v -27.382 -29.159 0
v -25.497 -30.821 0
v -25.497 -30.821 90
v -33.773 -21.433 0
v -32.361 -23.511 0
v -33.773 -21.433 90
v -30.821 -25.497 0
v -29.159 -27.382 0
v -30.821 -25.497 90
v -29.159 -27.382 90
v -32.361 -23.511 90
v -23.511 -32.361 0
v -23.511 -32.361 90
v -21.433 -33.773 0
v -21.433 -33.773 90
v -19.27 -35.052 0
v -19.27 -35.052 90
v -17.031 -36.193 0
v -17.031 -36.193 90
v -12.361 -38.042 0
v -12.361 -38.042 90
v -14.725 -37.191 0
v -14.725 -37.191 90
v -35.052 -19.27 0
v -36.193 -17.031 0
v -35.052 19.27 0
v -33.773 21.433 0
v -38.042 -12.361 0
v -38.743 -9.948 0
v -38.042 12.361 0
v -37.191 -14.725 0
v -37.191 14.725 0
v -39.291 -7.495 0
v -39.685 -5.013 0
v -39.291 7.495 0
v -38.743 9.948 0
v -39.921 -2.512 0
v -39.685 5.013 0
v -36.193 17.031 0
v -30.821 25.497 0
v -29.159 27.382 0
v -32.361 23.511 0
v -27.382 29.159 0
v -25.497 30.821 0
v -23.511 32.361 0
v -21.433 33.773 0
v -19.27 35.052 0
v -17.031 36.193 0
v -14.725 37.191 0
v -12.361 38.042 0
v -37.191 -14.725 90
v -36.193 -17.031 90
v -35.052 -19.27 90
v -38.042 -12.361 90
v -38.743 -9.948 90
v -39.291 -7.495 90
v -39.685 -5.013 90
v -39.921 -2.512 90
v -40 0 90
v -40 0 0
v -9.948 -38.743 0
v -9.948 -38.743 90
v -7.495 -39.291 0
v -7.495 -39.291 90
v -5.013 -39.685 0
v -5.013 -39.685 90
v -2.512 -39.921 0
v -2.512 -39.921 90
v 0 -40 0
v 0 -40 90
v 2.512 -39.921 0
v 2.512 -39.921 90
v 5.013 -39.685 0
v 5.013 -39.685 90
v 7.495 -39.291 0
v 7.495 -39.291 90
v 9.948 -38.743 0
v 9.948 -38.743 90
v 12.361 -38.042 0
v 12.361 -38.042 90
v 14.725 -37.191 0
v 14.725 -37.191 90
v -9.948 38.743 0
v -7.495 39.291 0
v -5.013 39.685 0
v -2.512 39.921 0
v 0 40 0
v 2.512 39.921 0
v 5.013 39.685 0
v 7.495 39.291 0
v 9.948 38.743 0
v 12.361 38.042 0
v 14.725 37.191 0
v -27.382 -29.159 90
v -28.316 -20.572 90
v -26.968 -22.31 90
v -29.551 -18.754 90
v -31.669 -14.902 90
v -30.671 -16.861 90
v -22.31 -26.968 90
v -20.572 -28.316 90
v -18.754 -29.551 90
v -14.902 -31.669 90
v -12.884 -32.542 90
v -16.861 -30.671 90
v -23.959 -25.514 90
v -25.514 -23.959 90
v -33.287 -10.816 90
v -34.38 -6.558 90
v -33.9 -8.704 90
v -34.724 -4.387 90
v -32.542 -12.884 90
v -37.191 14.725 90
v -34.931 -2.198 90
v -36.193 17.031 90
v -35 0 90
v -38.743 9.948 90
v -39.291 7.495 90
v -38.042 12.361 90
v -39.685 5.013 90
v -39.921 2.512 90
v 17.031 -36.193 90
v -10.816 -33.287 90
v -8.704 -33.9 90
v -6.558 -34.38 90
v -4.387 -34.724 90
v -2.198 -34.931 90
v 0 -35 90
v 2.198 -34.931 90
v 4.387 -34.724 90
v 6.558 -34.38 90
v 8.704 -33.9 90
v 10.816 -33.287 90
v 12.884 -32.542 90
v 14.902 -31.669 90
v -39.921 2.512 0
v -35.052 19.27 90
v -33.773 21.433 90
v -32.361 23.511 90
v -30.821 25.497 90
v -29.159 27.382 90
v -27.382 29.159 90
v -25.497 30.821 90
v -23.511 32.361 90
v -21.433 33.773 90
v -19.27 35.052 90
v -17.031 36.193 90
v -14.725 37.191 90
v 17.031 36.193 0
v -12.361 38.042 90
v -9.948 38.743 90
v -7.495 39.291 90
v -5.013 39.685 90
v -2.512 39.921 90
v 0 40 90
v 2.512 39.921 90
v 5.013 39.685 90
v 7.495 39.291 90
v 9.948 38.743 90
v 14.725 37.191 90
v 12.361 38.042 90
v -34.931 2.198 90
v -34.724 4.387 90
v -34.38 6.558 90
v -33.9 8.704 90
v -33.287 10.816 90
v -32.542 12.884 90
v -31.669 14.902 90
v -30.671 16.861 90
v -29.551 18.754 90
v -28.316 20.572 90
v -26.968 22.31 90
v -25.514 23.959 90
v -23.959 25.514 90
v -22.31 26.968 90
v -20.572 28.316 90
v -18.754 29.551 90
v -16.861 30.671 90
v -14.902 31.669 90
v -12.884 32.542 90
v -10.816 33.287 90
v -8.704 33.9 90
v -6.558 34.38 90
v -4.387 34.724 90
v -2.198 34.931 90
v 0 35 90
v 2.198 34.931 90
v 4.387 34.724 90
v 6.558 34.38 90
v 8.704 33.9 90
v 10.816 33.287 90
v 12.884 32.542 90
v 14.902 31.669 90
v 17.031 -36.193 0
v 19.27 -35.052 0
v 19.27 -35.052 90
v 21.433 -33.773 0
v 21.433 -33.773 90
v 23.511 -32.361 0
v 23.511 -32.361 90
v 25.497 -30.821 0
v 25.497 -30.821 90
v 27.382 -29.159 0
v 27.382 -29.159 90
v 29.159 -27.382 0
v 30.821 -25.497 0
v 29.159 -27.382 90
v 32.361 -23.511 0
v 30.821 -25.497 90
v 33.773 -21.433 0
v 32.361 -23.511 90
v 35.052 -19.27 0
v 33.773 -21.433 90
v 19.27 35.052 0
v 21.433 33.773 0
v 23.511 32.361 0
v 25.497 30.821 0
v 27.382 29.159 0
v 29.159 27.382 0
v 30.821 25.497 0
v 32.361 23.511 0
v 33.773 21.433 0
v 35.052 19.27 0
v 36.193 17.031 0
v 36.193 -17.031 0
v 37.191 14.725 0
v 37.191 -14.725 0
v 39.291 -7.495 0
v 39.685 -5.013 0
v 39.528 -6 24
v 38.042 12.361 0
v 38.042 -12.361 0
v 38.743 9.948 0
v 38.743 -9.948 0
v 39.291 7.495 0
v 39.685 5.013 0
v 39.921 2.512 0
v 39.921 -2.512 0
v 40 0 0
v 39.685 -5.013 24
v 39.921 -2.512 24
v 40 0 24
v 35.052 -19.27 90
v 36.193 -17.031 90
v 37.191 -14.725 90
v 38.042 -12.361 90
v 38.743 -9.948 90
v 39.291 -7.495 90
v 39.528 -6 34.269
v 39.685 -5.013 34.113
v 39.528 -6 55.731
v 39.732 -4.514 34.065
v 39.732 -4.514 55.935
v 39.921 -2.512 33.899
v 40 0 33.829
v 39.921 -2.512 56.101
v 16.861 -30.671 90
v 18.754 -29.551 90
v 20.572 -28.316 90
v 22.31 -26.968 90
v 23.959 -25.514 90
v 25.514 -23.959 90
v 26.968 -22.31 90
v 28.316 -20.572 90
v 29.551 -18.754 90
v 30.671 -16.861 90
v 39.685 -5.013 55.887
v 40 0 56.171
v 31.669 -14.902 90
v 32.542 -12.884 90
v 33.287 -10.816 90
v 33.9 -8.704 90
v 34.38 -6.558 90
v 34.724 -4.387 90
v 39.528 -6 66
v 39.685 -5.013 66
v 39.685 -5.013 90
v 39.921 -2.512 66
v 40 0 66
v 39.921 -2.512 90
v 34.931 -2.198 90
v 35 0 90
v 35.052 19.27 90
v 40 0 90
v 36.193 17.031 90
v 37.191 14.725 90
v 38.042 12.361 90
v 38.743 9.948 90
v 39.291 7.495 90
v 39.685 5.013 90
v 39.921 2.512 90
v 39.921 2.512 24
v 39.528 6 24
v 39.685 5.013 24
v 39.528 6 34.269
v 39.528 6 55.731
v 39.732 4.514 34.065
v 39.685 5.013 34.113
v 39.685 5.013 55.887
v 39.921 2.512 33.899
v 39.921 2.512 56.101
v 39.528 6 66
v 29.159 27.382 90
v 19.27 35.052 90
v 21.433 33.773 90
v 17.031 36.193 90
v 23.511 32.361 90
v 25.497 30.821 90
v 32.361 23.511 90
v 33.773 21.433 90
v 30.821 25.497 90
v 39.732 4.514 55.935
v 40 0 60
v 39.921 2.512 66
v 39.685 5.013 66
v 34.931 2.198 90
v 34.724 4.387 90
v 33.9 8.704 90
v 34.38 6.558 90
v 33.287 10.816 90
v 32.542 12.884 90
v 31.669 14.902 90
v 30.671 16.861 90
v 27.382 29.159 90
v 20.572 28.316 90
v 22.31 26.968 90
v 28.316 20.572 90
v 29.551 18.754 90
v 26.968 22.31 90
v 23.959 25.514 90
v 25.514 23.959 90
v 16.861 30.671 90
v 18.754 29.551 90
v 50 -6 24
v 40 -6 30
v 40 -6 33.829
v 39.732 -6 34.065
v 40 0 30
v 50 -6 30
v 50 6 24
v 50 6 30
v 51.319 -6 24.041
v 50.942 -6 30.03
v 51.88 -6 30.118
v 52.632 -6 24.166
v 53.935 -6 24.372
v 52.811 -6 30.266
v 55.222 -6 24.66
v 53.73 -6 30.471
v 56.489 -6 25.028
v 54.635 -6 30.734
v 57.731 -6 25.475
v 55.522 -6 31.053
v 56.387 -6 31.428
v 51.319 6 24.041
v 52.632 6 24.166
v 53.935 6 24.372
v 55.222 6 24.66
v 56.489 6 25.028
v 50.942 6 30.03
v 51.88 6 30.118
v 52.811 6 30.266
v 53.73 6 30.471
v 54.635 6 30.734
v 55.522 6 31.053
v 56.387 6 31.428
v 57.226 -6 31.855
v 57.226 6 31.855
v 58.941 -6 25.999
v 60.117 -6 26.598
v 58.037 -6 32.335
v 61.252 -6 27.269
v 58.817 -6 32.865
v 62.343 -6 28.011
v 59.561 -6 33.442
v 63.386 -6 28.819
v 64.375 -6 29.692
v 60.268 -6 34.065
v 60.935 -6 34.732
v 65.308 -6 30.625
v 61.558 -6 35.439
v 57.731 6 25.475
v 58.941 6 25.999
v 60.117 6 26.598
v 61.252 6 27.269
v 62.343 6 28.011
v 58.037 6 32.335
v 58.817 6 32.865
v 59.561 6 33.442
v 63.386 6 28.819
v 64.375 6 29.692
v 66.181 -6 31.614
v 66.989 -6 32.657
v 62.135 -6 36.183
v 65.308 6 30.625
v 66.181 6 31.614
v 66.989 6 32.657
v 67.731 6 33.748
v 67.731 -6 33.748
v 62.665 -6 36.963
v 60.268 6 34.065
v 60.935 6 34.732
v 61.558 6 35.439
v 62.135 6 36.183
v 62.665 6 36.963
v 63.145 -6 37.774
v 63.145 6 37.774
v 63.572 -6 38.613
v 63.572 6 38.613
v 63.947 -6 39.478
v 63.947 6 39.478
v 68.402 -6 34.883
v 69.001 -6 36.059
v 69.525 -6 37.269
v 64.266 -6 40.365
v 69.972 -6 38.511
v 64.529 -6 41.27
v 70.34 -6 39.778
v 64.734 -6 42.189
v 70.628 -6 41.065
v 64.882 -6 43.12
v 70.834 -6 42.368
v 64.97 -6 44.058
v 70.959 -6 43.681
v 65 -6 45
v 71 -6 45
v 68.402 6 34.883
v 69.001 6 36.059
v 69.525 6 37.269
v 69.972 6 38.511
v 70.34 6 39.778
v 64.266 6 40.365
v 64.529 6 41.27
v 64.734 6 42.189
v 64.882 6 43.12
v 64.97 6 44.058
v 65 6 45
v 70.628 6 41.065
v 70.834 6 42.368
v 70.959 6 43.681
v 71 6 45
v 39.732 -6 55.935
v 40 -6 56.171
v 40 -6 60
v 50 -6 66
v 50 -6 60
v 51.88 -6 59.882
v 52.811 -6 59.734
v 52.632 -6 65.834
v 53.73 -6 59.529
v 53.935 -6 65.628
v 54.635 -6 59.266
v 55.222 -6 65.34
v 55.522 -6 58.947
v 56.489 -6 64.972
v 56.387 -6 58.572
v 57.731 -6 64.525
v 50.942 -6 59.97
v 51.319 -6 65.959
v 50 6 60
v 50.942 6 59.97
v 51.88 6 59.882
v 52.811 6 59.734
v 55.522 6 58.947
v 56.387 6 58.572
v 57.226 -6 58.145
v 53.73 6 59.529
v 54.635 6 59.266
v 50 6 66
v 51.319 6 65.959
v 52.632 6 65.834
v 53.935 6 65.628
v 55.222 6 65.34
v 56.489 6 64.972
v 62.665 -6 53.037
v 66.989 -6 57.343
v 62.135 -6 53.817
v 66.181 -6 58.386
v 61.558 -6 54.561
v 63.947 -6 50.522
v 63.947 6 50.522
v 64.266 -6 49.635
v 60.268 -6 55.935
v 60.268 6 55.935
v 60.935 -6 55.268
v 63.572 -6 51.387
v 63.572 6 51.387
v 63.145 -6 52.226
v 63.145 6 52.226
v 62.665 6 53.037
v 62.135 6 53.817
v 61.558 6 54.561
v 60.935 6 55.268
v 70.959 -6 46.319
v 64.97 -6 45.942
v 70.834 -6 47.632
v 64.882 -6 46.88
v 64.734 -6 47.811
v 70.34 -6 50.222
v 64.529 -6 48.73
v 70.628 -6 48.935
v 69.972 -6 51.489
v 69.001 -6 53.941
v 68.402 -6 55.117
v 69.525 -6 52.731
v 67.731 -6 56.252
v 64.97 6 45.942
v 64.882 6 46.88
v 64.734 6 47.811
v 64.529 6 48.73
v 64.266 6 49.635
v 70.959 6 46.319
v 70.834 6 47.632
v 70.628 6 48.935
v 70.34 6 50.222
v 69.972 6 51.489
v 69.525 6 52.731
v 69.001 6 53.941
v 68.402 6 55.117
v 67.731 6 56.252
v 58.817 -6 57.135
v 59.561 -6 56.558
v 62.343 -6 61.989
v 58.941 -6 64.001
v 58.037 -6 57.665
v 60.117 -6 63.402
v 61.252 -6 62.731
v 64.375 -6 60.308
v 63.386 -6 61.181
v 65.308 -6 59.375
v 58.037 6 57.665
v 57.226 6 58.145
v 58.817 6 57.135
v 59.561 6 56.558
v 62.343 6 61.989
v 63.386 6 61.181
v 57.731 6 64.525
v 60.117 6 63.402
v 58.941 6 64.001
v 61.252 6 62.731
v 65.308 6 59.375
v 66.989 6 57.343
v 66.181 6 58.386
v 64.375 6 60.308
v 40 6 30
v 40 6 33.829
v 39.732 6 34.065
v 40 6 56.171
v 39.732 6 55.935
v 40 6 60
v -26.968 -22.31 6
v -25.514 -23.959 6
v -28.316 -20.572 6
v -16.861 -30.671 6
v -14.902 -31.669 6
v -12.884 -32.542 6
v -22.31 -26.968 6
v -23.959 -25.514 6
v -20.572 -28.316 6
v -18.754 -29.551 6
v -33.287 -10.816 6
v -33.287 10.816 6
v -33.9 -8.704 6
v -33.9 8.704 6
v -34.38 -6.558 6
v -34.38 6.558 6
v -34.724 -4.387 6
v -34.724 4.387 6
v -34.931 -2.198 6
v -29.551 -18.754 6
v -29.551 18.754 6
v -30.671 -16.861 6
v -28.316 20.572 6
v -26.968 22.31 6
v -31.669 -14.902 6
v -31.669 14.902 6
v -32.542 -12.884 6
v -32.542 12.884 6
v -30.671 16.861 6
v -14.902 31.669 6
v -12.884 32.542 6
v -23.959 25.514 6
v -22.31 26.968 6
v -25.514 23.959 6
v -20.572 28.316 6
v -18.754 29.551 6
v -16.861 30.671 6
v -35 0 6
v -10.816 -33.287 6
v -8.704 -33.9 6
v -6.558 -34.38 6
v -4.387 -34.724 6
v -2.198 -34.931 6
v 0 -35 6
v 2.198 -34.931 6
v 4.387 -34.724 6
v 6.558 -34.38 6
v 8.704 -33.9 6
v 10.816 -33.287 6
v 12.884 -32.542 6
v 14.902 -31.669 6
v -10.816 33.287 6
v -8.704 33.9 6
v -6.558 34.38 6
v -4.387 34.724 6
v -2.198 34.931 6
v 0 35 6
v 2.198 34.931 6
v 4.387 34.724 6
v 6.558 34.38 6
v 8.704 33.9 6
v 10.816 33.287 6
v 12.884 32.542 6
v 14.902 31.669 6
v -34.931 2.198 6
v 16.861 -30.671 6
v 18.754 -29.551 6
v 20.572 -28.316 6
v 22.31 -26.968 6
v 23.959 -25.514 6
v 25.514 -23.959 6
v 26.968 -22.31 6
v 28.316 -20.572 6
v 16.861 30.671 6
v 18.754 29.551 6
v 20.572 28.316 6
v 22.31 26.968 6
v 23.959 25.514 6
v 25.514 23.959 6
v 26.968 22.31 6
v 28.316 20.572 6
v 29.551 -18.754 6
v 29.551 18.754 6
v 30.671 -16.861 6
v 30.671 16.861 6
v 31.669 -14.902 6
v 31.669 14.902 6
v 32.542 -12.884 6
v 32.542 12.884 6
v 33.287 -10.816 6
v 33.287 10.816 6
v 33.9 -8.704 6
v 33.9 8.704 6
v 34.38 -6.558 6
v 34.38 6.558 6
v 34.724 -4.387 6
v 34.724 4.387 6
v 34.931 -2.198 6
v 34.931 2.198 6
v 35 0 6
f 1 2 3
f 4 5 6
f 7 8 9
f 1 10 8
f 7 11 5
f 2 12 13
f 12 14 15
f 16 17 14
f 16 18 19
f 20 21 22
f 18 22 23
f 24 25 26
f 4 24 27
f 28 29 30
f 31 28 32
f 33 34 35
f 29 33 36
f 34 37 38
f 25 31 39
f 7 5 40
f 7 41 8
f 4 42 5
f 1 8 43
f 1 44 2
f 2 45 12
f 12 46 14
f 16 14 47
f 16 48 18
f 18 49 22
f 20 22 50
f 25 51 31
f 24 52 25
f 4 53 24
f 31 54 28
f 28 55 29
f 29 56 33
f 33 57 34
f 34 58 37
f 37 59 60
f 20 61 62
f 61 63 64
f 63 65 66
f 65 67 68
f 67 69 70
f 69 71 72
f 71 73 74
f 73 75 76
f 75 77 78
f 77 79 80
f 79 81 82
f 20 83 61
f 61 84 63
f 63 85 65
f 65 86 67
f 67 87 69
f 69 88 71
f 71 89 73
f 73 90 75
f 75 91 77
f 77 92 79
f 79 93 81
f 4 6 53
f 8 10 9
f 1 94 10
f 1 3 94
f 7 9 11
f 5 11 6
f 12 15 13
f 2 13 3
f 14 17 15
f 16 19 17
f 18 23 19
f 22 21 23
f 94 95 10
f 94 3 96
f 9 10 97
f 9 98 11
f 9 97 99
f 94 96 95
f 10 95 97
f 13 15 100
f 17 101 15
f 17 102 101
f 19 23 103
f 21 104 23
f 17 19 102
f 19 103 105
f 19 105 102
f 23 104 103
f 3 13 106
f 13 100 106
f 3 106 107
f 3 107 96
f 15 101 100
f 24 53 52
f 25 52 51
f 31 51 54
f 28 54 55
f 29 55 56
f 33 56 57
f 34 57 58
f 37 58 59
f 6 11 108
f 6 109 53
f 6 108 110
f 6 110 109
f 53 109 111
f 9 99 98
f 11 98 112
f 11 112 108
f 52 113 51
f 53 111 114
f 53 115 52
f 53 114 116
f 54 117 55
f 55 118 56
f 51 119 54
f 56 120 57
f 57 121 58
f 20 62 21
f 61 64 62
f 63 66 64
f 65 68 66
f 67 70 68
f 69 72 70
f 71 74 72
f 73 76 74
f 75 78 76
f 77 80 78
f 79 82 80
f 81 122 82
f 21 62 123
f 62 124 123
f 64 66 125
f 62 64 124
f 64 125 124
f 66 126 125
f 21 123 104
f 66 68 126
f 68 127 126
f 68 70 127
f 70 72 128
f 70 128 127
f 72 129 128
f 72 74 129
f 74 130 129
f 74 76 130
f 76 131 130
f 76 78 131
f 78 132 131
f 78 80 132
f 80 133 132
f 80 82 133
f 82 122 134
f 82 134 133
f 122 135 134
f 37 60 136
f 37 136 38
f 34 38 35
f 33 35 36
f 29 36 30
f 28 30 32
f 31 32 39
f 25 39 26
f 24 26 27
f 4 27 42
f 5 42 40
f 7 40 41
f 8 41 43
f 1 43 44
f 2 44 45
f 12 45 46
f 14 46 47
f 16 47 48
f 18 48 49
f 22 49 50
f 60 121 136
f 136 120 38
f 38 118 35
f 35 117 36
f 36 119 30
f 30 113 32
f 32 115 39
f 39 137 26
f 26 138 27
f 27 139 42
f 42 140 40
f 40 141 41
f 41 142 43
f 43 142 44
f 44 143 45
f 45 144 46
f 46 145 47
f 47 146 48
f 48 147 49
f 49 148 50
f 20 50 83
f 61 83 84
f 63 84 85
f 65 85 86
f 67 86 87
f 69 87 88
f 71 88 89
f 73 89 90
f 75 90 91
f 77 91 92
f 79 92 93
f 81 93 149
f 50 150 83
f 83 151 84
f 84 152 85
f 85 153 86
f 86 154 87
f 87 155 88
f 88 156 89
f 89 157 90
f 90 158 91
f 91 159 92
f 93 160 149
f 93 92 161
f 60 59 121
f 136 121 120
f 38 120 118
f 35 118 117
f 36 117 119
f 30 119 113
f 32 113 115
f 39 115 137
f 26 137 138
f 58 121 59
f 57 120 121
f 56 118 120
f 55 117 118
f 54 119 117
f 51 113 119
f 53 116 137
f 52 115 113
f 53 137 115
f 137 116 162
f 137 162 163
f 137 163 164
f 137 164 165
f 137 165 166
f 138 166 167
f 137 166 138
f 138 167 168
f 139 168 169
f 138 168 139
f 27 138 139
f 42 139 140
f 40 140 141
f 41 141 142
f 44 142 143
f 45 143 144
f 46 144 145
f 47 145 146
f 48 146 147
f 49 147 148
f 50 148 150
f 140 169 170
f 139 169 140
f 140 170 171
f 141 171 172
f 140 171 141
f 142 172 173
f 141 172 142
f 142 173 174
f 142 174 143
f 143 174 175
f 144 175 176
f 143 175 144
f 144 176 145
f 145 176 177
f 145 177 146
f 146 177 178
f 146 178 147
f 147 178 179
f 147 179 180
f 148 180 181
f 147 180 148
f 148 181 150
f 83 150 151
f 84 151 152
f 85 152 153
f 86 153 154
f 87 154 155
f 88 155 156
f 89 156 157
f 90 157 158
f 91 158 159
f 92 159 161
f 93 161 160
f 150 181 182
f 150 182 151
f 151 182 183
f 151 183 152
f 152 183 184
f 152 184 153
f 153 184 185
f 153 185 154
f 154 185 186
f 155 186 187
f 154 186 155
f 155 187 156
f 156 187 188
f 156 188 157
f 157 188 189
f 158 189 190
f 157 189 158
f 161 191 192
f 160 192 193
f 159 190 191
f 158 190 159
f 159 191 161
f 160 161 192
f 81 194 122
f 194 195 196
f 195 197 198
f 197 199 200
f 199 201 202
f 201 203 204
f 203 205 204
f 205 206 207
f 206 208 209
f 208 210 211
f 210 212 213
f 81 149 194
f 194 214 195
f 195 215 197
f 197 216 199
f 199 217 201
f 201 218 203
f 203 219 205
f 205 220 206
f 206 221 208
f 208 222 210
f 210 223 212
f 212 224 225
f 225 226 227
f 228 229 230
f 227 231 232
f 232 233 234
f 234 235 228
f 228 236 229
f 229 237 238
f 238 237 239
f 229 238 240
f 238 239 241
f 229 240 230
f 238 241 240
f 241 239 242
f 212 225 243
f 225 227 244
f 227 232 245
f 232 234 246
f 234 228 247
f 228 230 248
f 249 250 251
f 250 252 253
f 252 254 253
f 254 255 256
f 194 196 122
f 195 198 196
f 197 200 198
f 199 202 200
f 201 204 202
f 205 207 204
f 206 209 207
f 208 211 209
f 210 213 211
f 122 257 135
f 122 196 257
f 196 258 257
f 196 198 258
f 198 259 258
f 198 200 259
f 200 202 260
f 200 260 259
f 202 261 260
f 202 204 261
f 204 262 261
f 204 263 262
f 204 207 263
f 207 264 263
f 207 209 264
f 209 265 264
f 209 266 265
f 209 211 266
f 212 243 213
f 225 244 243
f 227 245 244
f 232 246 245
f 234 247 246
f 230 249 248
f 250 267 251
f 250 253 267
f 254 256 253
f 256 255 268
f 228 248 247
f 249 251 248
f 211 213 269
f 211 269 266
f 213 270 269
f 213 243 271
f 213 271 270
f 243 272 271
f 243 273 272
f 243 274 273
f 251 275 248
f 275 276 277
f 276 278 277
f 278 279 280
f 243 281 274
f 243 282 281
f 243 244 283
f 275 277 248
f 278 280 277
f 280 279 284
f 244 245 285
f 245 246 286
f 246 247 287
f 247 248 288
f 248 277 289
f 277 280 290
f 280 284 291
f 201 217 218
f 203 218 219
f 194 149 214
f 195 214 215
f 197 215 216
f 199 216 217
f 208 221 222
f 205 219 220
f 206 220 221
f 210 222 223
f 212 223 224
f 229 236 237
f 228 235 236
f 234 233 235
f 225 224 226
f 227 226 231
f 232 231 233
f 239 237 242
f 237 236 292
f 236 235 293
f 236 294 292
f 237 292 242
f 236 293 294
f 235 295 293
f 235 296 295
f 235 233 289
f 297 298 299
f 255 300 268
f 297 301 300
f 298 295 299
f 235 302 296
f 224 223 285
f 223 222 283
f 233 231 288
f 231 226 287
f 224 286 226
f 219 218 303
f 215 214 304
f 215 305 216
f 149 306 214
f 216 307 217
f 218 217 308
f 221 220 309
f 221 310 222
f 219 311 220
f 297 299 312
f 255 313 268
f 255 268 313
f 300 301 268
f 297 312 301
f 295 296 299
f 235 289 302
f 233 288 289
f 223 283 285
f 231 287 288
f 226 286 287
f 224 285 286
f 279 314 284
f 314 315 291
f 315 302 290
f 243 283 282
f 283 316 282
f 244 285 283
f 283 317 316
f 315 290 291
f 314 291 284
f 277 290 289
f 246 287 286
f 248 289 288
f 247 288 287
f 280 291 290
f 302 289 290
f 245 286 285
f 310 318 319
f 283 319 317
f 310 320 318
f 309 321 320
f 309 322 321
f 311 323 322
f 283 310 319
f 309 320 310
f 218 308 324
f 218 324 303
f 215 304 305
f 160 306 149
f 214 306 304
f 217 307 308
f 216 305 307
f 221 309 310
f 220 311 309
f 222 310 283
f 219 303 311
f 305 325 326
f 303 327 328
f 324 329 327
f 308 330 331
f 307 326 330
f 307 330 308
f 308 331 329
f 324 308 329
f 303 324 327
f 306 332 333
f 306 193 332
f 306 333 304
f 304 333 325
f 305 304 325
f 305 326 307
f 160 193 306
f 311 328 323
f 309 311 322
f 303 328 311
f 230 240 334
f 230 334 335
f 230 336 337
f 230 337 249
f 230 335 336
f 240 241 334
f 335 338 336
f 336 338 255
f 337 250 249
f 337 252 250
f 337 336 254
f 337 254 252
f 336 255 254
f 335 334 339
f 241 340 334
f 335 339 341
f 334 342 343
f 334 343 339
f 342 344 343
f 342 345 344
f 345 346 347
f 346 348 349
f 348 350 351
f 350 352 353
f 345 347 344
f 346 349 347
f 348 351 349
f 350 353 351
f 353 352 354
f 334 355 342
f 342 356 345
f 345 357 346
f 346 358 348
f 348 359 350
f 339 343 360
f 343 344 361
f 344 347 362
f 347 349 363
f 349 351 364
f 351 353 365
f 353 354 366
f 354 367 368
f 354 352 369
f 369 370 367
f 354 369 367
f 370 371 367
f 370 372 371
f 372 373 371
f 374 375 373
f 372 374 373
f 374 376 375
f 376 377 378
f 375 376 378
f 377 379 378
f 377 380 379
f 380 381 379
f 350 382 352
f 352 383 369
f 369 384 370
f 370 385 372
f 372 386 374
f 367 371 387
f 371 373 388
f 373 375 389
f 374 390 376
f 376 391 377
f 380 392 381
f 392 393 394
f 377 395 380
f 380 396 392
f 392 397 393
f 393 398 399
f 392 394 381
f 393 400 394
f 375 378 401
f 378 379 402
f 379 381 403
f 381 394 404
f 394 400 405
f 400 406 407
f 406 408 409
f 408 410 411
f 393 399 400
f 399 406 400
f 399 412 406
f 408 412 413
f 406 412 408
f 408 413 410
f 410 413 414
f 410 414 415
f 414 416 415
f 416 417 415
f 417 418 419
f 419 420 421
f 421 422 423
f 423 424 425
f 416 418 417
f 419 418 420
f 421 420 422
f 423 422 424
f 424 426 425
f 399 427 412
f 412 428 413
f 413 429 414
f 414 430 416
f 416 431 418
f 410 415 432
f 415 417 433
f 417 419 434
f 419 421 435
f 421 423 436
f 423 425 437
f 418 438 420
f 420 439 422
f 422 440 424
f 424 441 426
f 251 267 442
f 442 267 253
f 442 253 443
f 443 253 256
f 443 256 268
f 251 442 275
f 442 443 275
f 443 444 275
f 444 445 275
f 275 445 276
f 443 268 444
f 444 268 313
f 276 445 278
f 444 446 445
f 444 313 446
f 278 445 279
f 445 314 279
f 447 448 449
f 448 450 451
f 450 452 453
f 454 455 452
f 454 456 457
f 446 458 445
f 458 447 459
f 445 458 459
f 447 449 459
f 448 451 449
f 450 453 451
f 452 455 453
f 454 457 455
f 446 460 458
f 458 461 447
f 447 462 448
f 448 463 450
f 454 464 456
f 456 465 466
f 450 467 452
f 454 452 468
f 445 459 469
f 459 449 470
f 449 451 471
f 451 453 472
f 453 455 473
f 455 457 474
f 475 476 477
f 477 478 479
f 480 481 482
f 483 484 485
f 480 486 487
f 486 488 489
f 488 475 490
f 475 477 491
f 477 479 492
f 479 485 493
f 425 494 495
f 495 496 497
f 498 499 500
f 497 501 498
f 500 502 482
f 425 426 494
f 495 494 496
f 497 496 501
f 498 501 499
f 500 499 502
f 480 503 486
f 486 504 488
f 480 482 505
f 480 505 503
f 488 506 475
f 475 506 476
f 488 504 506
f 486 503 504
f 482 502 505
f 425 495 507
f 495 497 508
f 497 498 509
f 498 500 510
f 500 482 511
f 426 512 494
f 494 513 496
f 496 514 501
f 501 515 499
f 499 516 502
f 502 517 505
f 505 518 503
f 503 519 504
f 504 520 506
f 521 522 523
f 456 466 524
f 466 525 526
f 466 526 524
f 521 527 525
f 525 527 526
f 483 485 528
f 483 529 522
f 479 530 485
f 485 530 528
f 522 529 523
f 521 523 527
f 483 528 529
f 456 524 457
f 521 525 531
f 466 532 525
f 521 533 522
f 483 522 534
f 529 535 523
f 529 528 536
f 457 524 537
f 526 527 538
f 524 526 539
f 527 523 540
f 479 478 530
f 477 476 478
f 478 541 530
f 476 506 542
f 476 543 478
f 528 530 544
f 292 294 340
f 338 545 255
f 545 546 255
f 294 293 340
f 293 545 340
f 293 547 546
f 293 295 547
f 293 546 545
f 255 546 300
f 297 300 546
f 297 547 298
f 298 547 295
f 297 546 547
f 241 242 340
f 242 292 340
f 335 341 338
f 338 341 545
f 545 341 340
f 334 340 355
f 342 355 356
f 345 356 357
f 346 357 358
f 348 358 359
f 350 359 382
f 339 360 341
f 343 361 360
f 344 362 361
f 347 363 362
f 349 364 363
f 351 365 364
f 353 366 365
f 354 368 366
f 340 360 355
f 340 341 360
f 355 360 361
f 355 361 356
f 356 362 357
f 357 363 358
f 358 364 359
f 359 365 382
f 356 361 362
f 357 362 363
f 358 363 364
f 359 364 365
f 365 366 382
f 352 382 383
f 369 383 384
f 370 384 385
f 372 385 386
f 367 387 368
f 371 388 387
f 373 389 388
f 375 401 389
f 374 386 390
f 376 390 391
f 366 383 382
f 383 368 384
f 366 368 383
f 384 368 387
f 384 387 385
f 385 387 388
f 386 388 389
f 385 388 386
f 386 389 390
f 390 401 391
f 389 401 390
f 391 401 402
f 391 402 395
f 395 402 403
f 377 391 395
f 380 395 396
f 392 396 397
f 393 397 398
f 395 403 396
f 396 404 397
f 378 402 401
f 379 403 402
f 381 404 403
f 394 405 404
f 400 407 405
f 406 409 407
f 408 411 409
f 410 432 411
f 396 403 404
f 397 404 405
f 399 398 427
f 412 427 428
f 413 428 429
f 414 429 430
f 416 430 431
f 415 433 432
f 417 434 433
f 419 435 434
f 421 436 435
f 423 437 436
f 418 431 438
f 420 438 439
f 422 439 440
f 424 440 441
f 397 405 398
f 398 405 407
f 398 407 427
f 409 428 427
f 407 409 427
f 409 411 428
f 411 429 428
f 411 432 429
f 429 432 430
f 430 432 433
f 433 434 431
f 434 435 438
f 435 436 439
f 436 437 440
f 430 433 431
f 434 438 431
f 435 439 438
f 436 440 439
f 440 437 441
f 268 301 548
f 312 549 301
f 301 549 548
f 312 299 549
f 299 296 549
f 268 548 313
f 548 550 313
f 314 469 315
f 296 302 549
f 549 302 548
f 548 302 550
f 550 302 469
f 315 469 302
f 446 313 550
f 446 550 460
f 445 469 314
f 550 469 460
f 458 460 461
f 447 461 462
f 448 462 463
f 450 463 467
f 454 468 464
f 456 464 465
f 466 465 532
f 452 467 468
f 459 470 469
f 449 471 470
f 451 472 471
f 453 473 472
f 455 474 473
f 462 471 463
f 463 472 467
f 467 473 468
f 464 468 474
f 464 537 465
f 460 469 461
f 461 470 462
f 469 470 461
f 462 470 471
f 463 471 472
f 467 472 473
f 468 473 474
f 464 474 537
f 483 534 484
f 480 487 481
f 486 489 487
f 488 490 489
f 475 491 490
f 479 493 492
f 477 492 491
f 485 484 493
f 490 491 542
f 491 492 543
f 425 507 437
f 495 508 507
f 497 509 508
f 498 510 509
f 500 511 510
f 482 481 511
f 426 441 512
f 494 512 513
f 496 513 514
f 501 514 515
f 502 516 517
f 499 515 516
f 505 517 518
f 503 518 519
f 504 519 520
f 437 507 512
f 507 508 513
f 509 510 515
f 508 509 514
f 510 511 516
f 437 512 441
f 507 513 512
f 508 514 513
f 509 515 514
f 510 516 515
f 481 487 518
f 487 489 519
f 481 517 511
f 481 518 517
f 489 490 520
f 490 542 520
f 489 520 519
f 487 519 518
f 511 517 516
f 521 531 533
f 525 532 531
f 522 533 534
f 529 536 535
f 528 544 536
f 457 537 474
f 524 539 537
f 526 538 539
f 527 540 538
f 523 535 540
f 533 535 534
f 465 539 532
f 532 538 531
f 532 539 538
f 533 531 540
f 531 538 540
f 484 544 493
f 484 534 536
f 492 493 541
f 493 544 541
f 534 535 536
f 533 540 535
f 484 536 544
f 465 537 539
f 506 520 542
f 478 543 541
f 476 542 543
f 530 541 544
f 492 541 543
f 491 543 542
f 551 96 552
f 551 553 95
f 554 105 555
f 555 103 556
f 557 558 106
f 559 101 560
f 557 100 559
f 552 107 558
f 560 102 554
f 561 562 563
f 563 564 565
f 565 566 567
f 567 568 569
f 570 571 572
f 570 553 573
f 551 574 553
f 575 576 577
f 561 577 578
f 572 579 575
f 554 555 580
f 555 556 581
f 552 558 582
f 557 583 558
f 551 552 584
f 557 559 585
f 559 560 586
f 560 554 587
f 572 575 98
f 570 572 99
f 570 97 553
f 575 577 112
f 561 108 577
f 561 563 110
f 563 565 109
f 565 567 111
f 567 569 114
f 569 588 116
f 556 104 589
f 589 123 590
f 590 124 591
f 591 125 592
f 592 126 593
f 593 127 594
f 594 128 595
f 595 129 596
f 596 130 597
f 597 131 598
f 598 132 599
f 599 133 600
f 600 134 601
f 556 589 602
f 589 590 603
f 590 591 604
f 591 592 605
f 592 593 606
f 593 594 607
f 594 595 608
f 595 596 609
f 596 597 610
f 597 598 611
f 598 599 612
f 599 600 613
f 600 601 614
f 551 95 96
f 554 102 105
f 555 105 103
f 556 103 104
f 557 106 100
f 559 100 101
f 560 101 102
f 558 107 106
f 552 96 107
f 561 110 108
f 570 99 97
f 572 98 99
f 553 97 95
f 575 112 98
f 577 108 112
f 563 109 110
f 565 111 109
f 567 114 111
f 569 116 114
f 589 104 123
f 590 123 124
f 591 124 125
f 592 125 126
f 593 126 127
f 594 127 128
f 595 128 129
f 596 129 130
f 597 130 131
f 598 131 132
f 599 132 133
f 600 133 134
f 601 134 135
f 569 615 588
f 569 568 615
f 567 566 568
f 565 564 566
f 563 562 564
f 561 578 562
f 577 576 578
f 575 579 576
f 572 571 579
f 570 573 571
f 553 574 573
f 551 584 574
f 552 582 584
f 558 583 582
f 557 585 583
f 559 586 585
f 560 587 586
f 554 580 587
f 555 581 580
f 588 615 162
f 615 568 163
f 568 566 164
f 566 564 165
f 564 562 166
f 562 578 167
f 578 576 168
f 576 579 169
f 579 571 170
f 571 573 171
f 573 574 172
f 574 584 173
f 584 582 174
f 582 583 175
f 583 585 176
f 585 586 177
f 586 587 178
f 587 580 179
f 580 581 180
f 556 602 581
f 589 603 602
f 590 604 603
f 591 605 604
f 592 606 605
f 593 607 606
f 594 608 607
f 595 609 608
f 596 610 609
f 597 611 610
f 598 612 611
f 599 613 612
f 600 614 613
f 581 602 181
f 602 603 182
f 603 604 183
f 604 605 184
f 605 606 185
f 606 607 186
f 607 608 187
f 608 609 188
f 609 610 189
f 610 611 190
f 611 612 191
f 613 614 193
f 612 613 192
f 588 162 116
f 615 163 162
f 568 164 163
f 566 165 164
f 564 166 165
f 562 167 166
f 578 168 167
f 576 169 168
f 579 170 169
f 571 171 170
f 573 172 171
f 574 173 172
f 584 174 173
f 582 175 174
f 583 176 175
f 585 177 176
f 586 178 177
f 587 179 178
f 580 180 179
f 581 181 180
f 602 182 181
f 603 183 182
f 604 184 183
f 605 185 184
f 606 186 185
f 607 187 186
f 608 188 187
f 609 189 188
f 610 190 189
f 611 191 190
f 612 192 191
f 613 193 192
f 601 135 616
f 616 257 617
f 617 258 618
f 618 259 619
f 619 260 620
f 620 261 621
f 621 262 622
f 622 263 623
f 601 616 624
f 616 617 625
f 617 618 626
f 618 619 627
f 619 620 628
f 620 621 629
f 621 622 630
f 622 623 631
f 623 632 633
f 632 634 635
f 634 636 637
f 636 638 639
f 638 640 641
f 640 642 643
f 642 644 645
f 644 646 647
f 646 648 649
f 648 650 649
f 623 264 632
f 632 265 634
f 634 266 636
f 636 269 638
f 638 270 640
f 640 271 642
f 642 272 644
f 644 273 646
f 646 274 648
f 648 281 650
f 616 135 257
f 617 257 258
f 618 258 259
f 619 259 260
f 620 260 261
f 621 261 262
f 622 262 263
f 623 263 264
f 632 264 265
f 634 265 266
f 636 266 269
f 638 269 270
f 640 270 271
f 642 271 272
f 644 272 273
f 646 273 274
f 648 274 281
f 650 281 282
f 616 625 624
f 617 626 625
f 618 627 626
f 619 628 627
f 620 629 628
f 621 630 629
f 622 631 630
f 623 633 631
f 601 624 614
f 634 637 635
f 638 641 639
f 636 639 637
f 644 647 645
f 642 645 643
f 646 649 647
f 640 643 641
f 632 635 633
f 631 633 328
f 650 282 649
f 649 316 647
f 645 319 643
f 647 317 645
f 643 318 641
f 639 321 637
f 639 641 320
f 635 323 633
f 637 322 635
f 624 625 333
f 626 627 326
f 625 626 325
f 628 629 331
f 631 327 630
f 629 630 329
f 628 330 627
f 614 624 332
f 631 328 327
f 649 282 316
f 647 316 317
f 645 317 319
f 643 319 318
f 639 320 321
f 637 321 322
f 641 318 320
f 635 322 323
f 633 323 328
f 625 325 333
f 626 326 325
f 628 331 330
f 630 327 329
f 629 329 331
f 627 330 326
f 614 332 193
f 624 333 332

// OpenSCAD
$fn = 100;

module handle_2d() {
    // XZ平面における取手の2Dプロファイル
    // 外側の厚みを6mmとして設定
    difference() {
        // 外形（本体に確実に食い込ませるため X=35 から配置）
        union() {
            translate([35, -21]) square([15, 42]);
            translate([50, 0]) circle(r = 21);
        }
        // 内側の空間（幅25mm: X=40〜65, 高さ30mm: Z=-15〜15）
        union() {
            translate([40, -15]) square([10, 30]);
            translate([50, 0]) circle(r = 15);
        }
    }
}

module mug() {
    difference() {
        // 外側の本体と取手を結合
        union() {
            cylinder(r = 40, h = 90); // 外径80mm (r=40), 高さ90mm
            
            // 取手を+X方向、高さ中央(Z=45)に配置、Y軸方向に厚み12mmで押し出し
            translate([0, 0, 45])
                rotate([90, 0, 0])
                linear_extrude(height = 12, center = true)
                handle_2d();
        }
        // 内側をくり抜く（内径70mm (r=35), 底面の厚み6mm）
        translate([0, 0, 6])
            cylinder(r = 35, h = 90);
    }
}

mug();
